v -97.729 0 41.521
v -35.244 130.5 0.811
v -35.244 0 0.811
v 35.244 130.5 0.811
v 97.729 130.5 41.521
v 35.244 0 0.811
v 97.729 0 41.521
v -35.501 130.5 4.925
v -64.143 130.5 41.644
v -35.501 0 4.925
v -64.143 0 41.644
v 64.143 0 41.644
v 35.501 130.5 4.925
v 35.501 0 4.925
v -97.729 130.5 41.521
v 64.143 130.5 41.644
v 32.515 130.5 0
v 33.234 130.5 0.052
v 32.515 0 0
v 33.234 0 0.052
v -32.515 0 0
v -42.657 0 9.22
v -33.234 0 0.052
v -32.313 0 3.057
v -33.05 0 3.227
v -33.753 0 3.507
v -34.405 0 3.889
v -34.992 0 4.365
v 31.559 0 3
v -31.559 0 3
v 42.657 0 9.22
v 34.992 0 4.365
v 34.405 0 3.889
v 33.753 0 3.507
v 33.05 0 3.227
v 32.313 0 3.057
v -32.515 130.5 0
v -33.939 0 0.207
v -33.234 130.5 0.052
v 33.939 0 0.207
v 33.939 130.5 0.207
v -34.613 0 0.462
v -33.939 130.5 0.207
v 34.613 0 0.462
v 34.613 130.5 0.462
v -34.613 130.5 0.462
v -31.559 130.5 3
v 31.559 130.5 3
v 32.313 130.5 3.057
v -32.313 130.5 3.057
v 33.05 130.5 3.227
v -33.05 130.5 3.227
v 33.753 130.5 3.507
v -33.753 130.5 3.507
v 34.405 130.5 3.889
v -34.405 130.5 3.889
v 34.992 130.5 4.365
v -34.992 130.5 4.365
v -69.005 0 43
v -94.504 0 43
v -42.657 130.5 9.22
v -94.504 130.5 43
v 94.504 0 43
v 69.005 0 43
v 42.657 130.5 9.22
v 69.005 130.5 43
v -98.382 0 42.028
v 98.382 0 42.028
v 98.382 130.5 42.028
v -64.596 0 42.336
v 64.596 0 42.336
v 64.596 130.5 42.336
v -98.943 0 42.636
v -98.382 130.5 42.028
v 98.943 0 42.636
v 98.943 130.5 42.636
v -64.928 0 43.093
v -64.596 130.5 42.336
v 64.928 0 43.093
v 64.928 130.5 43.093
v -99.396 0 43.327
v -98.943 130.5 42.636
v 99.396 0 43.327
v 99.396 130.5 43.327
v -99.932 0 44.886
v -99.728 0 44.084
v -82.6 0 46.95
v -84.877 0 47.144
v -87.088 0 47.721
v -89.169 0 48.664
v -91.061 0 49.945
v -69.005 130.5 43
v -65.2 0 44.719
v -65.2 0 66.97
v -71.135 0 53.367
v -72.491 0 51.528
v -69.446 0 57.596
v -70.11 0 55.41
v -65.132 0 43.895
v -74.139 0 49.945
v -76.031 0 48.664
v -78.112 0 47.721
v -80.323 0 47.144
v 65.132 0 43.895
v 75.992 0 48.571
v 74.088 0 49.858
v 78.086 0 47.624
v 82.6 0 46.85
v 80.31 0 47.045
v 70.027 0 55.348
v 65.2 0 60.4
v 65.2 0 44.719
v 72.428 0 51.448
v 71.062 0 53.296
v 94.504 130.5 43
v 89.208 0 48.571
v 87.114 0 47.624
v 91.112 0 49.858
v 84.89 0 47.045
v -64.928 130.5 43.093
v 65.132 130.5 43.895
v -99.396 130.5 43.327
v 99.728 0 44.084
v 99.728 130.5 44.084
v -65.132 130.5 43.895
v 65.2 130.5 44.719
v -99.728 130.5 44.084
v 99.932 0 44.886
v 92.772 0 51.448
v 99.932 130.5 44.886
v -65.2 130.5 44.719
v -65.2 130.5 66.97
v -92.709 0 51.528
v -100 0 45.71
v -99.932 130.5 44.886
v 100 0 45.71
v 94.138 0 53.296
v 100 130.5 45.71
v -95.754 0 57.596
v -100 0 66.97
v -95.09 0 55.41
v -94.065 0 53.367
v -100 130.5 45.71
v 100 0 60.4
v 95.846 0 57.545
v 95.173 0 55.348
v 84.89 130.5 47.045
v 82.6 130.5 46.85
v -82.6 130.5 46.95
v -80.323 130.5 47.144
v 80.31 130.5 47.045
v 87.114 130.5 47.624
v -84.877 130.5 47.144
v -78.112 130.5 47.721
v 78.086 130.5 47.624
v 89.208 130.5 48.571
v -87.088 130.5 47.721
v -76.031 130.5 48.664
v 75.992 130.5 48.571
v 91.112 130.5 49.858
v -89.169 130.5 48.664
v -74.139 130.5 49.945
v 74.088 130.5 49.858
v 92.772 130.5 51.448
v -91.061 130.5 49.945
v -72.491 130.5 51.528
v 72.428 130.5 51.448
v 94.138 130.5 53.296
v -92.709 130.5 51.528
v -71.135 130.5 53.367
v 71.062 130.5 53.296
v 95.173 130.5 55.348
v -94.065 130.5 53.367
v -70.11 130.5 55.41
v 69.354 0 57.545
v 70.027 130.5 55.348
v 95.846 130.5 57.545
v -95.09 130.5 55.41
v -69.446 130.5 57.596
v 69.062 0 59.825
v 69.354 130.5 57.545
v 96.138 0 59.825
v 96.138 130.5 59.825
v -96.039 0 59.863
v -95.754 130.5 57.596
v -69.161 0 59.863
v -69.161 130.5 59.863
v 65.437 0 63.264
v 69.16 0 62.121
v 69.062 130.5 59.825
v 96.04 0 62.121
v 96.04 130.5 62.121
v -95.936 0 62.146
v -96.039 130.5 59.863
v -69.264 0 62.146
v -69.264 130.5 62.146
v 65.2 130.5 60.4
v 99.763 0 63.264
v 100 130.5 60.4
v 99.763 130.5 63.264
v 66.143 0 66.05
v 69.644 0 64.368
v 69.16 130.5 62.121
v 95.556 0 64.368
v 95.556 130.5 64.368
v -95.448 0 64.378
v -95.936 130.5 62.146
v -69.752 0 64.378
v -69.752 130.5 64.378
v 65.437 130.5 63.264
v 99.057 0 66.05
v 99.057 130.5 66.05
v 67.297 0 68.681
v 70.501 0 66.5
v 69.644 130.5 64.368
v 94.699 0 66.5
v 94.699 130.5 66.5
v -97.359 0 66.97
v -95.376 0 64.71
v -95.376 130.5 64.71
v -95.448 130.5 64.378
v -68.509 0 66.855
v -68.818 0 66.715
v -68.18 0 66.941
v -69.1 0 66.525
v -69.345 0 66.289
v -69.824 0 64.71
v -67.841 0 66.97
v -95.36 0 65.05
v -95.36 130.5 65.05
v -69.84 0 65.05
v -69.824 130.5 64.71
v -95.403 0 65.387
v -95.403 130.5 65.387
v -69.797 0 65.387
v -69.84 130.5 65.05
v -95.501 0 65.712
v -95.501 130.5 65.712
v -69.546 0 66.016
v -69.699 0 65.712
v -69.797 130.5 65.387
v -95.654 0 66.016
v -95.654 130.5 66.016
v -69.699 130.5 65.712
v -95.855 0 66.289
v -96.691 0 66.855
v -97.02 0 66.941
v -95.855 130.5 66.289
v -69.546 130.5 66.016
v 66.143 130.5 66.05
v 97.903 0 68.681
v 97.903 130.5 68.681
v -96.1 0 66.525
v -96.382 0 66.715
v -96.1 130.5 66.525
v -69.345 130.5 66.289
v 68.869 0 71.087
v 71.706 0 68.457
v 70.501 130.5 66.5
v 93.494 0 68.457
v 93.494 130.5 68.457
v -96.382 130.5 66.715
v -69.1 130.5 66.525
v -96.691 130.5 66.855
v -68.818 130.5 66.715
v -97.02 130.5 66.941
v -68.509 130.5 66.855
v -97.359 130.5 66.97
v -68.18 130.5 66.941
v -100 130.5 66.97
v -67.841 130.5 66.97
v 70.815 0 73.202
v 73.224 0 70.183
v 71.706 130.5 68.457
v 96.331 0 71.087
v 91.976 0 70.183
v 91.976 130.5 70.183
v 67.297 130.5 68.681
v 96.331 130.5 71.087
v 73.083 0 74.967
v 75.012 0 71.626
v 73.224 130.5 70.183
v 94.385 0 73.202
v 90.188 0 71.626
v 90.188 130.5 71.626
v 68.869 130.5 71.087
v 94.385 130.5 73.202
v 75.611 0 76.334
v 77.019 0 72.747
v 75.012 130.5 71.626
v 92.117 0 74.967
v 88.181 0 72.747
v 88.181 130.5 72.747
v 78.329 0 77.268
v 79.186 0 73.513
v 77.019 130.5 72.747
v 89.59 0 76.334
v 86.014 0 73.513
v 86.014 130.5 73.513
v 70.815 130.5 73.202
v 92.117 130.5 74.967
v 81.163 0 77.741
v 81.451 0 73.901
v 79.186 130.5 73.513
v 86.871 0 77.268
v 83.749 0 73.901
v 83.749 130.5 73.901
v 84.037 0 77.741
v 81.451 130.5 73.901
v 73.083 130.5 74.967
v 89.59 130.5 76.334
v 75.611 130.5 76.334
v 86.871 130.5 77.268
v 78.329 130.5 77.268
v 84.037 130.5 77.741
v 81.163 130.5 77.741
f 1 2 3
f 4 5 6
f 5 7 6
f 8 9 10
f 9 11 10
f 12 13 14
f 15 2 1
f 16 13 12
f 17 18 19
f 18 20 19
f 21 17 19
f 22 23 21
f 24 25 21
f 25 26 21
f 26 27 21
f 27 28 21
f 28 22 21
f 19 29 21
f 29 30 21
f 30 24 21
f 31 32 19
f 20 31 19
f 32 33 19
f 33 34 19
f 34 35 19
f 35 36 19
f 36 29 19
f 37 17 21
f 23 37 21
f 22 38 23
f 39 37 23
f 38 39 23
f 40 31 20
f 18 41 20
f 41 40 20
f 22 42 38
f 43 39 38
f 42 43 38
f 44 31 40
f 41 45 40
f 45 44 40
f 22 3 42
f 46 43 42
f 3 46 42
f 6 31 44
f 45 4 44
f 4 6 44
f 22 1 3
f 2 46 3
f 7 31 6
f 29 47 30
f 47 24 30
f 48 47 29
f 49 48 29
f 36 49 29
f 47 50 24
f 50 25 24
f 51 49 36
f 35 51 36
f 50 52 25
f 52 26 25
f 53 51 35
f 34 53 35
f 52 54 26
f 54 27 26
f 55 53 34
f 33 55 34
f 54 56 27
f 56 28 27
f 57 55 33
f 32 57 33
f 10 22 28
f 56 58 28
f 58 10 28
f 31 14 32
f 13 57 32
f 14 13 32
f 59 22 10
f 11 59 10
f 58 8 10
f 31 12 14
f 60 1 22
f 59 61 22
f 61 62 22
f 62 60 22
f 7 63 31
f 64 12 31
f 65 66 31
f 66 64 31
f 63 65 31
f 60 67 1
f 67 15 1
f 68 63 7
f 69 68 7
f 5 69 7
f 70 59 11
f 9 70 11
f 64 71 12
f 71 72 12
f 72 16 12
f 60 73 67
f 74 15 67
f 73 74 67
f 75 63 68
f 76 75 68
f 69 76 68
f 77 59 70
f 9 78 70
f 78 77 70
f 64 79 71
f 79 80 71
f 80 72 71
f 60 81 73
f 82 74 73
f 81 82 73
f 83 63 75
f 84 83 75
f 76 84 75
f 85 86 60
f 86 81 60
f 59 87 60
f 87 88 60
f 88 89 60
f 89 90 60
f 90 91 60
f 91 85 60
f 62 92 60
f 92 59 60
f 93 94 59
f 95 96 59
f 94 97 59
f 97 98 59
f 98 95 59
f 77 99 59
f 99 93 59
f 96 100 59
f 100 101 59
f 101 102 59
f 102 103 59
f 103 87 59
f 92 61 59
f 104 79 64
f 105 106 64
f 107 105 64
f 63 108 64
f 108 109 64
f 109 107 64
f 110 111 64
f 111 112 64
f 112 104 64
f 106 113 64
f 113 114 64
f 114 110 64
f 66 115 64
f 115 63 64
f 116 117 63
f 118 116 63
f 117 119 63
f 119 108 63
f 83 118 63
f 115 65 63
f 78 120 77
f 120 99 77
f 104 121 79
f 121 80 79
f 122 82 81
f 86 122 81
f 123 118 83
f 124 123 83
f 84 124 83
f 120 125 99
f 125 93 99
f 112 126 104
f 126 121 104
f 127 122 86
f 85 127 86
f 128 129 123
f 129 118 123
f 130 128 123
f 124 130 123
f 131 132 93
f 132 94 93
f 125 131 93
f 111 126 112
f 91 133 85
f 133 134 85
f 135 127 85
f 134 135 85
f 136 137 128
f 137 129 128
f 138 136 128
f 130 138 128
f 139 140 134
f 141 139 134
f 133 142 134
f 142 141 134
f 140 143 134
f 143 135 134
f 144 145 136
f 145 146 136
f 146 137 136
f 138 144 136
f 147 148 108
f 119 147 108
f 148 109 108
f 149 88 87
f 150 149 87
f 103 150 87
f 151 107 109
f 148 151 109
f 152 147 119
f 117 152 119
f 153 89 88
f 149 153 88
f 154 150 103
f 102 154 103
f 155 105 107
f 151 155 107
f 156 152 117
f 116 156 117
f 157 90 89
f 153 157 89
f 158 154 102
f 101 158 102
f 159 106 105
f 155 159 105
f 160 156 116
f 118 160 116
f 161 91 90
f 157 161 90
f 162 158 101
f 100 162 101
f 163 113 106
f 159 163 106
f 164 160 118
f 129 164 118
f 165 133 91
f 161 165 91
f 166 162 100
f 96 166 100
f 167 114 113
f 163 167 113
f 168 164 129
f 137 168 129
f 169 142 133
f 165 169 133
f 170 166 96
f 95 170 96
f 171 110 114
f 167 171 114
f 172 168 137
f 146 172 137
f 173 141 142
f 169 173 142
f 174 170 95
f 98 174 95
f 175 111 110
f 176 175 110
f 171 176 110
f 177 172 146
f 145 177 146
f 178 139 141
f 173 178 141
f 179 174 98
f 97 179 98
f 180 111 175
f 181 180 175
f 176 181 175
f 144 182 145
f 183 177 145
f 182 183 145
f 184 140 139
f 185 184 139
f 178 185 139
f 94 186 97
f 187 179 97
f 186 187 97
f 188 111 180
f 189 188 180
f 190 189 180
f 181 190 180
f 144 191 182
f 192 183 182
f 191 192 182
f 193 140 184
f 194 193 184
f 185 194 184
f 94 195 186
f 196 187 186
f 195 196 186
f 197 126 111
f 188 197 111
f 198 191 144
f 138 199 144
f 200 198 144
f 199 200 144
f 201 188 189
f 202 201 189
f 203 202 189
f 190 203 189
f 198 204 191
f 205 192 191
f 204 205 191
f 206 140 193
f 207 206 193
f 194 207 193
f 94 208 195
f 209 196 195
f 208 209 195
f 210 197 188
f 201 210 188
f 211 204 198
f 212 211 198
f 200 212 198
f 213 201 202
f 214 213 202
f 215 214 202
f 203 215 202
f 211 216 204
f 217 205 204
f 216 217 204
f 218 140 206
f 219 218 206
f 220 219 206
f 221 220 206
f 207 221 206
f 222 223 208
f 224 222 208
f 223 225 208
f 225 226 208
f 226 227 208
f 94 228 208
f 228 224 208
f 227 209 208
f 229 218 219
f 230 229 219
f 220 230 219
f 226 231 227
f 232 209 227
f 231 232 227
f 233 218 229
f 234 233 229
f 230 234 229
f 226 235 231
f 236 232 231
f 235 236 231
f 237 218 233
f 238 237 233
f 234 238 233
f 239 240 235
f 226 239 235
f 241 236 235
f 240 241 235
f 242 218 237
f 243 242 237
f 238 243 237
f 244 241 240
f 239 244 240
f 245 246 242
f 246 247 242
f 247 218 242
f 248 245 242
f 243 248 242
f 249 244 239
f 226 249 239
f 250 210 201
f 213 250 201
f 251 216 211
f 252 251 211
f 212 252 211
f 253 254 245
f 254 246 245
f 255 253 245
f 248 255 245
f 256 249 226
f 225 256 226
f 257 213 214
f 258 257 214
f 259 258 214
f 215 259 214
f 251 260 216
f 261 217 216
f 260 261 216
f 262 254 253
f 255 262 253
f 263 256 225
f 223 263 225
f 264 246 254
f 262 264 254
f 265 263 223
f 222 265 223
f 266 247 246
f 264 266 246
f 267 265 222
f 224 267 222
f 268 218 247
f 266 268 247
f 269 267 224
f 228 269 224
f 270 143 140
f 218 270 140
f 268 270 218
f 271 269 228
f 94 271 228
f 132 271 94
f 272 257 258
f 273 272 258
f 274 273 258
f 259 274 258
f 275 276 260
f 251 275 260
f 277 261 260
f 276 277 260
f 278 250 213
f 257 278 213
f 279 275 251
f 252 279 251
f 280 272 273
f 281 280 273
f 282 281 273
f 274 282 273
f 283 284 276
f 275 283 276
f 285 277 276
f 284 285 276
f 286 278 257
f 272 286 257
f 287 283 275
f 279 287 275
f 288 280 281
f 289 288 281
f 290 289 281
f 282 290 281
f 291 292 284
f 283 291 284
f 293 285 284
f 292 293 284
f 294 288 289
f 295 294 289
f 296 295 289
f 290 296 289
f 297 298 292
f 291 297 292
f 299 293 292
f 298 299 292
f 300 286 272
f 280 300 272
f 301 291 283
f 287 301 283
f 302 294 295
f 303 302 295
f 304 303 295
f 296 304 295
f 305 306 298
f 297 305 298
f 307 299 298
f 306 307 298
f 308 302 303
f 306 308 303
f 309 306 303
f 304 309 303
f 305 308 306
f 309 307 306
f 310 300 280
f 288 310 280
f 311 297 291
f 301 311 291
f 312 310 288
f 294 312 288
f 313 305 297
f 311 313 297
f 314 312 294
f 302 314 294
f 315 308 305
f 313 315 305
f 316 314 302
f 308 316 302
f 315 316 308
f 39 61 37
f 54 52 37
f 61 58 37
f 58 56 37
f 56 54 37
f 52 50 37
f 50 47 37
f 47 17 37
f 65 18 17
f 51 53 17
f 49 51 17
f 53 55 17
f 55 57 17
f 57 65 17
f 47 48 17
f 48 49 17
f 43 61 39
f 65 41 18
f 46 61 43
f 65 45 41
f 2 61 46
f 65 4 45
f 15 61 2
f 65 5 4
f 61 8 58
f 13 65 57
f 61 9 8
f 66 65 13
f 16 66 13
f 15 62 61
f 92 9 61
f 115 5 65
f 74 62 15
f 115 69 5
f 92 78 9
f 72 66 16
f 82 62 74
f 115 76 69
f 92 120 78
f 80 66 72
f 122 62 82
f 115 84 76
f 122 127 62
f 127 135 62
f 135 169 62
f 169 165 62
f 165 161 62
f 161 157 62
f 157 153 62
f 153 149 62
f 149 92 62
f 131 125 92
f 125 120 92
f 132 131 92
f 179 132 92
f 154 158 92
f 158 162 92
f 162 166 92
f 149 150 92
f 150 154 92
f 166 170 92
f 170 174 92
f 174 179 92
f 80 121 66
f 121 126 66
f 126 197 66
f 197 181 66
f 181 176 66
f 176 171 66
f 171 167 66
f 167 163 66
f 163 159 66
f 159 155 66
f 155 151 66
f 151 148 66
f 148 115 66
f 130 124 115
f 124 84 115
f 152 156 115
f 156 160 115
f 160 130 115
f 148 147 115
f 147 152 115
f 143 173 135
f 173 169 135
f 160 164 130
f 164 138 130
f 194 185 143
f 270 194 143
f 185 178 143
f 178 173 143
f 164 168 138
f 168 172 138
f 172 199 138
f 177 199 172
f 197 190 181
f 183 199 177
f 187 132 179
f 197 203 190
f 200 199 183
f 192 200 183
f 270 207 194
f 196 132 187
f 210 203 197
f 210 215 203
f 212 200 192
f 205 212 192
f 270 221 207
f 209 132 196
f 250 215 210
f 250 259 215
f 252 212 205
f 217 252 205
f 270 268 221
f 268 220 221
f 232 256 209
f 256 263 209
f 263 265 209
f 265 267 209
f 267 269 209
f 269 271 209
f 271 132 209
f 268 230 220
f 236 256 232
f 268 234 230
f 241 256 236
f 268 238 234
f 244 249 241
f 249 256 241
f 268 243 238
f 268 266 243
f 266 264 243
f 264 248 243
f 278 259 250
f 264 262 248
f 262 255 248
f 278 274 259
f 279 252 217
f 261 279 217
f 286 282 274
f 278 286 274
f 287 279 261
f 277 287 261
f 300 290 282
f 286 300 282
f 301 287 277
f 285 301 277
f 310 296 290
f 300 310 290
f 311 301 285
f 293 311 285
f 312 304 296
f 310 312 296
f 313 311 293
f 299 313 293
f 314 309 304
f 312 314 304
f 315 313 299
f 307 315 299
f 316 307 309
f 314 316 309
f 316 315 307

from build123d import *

# Parameters (mm, degrees)
BOSS_EXTRUDE1_DEPTH = 130.5
SKETCH4_W           = 34.8
SKETCH4_H           = 34.8
SKETCH4_R           = 13.45
BOSS_EXTRUDE2_DEPTH = 130.5
FILLET1_R           = 5
CUT_EXTRUDE4_DEPTH  = 182.887575167
SKETCH6_R           = 13.55
CUT_EXTRUDE5_DEPTH  = 182.887575167


with BuildPart() as part:
    # Sketch1 → Boss-Extrude1 (new body)
    with BuildSketch(Plane(origin=(0, 0, 0), x_dir=(1, 0, 0), z_dir=(0, 1, 0))):
        with BuildLine():
            Line((0, 0), (-34, 0))
            Line((-34, 0), (-100, -43))
            Line((-100, -43), (-100, -66.97))
            Line((-100, -66.97), (-97.358644924, -66.97))
            ThreePointArc((-97.358644924, -66.97), (-95.748804634, -66.156766295), (-95.448140727, -64.378414239))
            ThreePointArc((-95.448140727, -64.378414239), (-82.6, -46.95), (-69.751859273, -64.378414239))
            ThreePointArc((-69.751859273, -64.378414239), (-69.451195366, -66.156766295), (-67.841355076, -66.97))
            Line((-67.841355076, -66.97), (-65.2, -66.97))
            Line((-65.2, -66.97), (-65.2, -43))
            Line((-65.2, -43), (-34, -3))
            Line((-34, -3), (0, -3))
            Line((0, -3), (0, 0))
        make_face()
        Polygon((-69.004681327, -43), (-94.504291462, -43), (-42.656655328, -9.220479488), align=None, mode=Mode.SUBTRACT)
    boss_extrude1 = extrude(amount=BOSS_EXTRUDE1_DEPTH)

    # Mirror1: Boss-Extrude1 across plane
    add(boss_extrude1.mirror(Plane(origin=(0, 130.5, 3), x_dir=(0, 0, 1), z_dir=(-1, 0, 0))))

    # Sketch4 → Boss-Extrude2 (add)
    with BuildSketch(Plane.XZ):
        with Locations((82.6, 60.4)):
            Rectangle(SKETCH4_W, SKETCH4_H)
        with Locations(Location((82.6, 60.4, 0), (0, 0, 270))):
            Circle(SKETCH4_R, mode=Mode.SUBTRACT)
    extrude(amount=-BOSS_EXTRUDE2_DEPTH)

    # Fillet1
    fillet1_edges = [part.edges().sort_by_distance(p)[0] for p in [
        (-34, 65.25, 3),
        (-65.2, 65.25, 43),
        (-100, 65.25, 43),
        (-34, 65.25, 0),
        (34, 65.25, 3),
        (65.2, 65.25, 43),
        (100, 65.25, 43),
        (34, 65.25, 0),
    ]]
    fillet(fillet1_edges, radius=FILLET1_R)

    # Sketch5 → Cut-Extrude4 (cut, through all)
    with BuildSketch(Plane.XZ):
        with BuildLine():
            Line((65.2, 60.4), (65.2, 77.8))
            Line((65.2, 77.8), (83.070170915, 82.404410021))
            Line((83.070170915, 82.404410021), (100, 77.8))
            Line((100, 77.8), (100, 60.4))
            ThreePointArc((100, 60.4), (82.6, 77.8), (65.2, 60.4))
        make_face()
    extrude(amount=-CUT_EXTRUDE4_DEPTH, mode=Mode.SUBTRACT)

    # Sketch6 → Cut-Extrude5 (cut, through all)
    with BuildSketch(Plane.XZ):
        with Locations(Location((82.6, 60.4, 0), (0, 0, 270))):
            Circle(SKETCH6_R)
    extrude(amount=-CUT_EXTRUDE5_DEPTH, mode=Mode.SUBTRACT)


solid = part.part
